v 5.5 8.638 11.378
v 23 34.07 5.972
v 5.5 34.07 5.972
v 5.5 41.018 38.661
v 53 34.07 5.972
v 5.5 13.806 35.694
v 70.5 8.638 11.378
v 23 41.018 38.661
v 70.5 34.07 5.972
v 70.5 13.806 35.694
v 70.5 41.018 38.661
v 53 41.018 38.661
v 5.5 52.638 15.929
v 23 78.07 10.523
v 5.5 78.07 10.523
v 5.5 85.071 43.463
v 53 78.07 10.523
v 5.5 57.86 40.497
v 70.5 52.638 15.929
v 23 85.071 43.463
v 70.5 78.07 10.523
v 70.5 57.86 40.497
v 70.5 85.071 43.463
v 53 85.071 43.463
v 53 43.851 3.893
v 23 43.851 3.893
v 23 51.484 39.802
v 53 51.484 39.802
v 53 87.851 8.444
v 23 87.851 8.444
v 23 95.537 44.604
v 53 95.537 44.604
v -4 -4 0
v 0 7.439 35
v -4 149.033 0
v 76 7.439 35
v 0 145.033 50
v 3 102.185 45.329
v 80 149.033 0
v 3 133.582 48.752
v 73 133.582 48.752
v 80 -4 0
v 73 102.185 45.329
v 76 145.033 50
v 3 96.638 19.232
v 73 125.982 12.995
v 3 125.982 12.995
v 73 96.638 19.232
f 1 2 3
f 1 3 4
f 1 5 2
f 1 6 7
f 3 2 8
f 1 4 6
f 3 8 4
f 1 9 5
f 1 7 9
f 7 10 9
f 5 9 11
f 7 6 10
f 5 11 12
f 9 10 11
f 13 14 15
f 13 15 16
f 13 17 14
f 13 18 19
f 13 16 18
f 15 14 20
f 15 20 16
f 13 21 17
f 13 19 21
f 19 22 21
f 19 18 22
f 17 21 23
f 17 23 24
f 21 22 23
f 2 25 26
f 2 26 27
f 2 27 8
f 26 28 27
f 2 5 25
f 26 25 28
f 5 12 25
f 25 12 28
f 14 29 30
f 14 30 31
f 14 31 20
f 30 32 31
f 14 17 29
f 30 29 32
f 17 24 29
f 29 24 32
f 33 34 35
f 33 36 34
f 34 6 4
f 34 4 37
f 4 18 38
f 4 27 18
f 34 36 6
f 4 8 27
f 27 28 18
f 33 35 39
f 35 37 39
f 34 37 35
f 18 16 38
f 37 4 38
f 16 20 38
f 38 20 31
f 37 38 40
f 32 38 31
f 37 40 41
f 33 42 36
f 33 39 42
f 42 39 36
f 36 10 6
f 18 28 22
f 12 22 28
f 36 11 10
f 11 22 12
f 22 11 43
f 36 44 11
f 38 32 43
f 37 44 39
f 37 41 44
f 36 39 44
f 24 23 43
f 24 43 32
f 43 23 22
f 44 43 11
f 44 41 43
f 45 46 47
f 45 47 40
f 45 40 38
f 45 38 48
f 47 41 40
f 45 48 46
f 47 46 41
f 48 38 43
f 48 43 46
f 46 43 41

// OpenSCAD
// Radio Mic Holder
// Holds 2 microphone packs and 1 battery charger

// --- Item dimensions ---
// mm
mic_width   = 65;
// mm
mic_depth   = 26;

// mm
charger_width = 70;
// mm
charger_depth = 30;

// mm
clip_width = 30;
// mm
clip_depth = 10;

// --- Holder parameters ---
// number of microphone packs to hold
num_mic_packs   = 2;
// mm — floor under items
base_thickness  = 3;
// mm — height at front of holder
holder_height_front = 35;
// mm — height at back of holder
holder_height_back  = 50;
// mm — space between items front-to-back
item_spacing    = 8;
// mm — space on left and right
wall_thickness_side = 3;
// mm — space on front and back
wall_thickness_front_back = 8;
// degrees — backward tilt of holders
tilt_angle      = 12;
// mm — how much base extends beyond top
base_flare      = 4;

// --- Calculated dimensions ---
widest_item = max(mic_width, charger_width);            // 70
// Account for backward extension from tilt: depth*cos(angle) + height*sin(angle)
// For small angles, cos ≈ 1, so extension ≈ depth + height*sin(angle)
tilt_extension = holder_height_back * sin(tilt_angle);
total_depth = num_mic_packs * (mic_depth + clip_depth) + charger_depth + num_mic_packs * item_spacing + tilt_extension;

holder_width = widest_item + 2 * wall_thickness_side;              // 76
// Account for the front wall tilt - at base height, front wall is pushed back
front_wall_offset = base_thickness * tan(tilt_angle);
holder_depth = total_depth + 2 * wall_thickness_front_back + front_wall_offset;

side_wall = (holder_width - widest_item) / 2;           // 3
front_wall = wall_thickness_front_back + front_wall_offset;    // 8 + offset

// --- Reusable modules ---
module slanted_box(width, depth, height_front, height_back, angle, flare) {
    // Create a box with front wall tilted backward by angle and sloped top
    offset = height_front * tan(angle);
    
    polyhedron(
        points = [
            // Bottom face (flared out)
            [-flare, -flare, 0],           // 0: front left bottom
            [width + flare, -flare, 0],    // 1: front right bottom
            [width + flare, depth + flare, 0],   // 2: back right bottom
            [-flare, depth + flare, 0],    // 3: back left bottom
            // Top face (sloped)
            [0, offset, height_front],         // 4: front left top
            [width, offset, height_front],     // 5: front right top
            [width, depth, height_back],       // 6: back right top
            [0, depth, height_back]            // 7: back left top
        ],
        faces = [
            [0, 1, 2, 3],  // bottom
            [7, 6, 5, 4],  // top (sloped)
            [0, 4, 5, 1],  // front
            [1, 5, 6, 2],  // right
            [2, 6, 7, 3],  // back
            [3, 7, 4, 0]   // left
        ]
    );
}

module mic_pack(height) {
    union() {
        // Main body
        cube([mic_width, mic_depth, height]);
        
        // Clip cutout on back
        translate([(mic_width - clip_width) / 2, mic_depth, 0])
            cube([clip_width, clip_depth, height]);
    }
}

module battery_charger(height) {
    cube([charger_width, charger_depth, height]);
}

// --- Main holder ---
difference() {
    // Slanted block with sloped top and flared base
    slanted_box(holder_width, holder_depth, holder_height_front, holder_height_back, tilt_angle, base_flare);

    // Mic packs
    for (i = [0:num_mic_packs-1]) {
        // Calculate adjustments for tilt
        mic_total_depth = mic_depth + clip_depth;
        y_position = front_wall + i * (mic_total_depth + item_spacing);
        
        // Z offset: base clearance + tilt adjustment + slope following
        // As items go further back (larger Y), raise them to follow the sloped top
        slope_adjustment = (y_position / holder_depth) * (holder_height_back - holder_height_front);
        z_offset = base_thickness + mic_total_depth * sin(tilt_angle) + slope_adjustment;
        
        translate([(holder_width - mic_width) / 2, 
                   y_position, 
                   z_offset])
            rotate([-tilt_angle, 0, 0])
                mic_pack(holder_height_back);
    }

    // Battery charger
    charger_y_position = front_wall + num_mic_packs * ((mic_depth + clip_depth) + item_spacing);
    
    // Z offset with slope following
    charger_slope_adjustment = (charger_y_position / holder_depth) * (holder_height_back - holder_height_front);
    charger_z_offset = base_thickness + charger_depth * sin(tilt_angle) + charger_slope_adjustment;
    
    translate([(holder_width - charger_width) / 2, 
               charger_y_position, 
               charger_z_offset])
        rotate([-tilt_angle, 0, 0])
            battery_charger(holder_height_back);
}
